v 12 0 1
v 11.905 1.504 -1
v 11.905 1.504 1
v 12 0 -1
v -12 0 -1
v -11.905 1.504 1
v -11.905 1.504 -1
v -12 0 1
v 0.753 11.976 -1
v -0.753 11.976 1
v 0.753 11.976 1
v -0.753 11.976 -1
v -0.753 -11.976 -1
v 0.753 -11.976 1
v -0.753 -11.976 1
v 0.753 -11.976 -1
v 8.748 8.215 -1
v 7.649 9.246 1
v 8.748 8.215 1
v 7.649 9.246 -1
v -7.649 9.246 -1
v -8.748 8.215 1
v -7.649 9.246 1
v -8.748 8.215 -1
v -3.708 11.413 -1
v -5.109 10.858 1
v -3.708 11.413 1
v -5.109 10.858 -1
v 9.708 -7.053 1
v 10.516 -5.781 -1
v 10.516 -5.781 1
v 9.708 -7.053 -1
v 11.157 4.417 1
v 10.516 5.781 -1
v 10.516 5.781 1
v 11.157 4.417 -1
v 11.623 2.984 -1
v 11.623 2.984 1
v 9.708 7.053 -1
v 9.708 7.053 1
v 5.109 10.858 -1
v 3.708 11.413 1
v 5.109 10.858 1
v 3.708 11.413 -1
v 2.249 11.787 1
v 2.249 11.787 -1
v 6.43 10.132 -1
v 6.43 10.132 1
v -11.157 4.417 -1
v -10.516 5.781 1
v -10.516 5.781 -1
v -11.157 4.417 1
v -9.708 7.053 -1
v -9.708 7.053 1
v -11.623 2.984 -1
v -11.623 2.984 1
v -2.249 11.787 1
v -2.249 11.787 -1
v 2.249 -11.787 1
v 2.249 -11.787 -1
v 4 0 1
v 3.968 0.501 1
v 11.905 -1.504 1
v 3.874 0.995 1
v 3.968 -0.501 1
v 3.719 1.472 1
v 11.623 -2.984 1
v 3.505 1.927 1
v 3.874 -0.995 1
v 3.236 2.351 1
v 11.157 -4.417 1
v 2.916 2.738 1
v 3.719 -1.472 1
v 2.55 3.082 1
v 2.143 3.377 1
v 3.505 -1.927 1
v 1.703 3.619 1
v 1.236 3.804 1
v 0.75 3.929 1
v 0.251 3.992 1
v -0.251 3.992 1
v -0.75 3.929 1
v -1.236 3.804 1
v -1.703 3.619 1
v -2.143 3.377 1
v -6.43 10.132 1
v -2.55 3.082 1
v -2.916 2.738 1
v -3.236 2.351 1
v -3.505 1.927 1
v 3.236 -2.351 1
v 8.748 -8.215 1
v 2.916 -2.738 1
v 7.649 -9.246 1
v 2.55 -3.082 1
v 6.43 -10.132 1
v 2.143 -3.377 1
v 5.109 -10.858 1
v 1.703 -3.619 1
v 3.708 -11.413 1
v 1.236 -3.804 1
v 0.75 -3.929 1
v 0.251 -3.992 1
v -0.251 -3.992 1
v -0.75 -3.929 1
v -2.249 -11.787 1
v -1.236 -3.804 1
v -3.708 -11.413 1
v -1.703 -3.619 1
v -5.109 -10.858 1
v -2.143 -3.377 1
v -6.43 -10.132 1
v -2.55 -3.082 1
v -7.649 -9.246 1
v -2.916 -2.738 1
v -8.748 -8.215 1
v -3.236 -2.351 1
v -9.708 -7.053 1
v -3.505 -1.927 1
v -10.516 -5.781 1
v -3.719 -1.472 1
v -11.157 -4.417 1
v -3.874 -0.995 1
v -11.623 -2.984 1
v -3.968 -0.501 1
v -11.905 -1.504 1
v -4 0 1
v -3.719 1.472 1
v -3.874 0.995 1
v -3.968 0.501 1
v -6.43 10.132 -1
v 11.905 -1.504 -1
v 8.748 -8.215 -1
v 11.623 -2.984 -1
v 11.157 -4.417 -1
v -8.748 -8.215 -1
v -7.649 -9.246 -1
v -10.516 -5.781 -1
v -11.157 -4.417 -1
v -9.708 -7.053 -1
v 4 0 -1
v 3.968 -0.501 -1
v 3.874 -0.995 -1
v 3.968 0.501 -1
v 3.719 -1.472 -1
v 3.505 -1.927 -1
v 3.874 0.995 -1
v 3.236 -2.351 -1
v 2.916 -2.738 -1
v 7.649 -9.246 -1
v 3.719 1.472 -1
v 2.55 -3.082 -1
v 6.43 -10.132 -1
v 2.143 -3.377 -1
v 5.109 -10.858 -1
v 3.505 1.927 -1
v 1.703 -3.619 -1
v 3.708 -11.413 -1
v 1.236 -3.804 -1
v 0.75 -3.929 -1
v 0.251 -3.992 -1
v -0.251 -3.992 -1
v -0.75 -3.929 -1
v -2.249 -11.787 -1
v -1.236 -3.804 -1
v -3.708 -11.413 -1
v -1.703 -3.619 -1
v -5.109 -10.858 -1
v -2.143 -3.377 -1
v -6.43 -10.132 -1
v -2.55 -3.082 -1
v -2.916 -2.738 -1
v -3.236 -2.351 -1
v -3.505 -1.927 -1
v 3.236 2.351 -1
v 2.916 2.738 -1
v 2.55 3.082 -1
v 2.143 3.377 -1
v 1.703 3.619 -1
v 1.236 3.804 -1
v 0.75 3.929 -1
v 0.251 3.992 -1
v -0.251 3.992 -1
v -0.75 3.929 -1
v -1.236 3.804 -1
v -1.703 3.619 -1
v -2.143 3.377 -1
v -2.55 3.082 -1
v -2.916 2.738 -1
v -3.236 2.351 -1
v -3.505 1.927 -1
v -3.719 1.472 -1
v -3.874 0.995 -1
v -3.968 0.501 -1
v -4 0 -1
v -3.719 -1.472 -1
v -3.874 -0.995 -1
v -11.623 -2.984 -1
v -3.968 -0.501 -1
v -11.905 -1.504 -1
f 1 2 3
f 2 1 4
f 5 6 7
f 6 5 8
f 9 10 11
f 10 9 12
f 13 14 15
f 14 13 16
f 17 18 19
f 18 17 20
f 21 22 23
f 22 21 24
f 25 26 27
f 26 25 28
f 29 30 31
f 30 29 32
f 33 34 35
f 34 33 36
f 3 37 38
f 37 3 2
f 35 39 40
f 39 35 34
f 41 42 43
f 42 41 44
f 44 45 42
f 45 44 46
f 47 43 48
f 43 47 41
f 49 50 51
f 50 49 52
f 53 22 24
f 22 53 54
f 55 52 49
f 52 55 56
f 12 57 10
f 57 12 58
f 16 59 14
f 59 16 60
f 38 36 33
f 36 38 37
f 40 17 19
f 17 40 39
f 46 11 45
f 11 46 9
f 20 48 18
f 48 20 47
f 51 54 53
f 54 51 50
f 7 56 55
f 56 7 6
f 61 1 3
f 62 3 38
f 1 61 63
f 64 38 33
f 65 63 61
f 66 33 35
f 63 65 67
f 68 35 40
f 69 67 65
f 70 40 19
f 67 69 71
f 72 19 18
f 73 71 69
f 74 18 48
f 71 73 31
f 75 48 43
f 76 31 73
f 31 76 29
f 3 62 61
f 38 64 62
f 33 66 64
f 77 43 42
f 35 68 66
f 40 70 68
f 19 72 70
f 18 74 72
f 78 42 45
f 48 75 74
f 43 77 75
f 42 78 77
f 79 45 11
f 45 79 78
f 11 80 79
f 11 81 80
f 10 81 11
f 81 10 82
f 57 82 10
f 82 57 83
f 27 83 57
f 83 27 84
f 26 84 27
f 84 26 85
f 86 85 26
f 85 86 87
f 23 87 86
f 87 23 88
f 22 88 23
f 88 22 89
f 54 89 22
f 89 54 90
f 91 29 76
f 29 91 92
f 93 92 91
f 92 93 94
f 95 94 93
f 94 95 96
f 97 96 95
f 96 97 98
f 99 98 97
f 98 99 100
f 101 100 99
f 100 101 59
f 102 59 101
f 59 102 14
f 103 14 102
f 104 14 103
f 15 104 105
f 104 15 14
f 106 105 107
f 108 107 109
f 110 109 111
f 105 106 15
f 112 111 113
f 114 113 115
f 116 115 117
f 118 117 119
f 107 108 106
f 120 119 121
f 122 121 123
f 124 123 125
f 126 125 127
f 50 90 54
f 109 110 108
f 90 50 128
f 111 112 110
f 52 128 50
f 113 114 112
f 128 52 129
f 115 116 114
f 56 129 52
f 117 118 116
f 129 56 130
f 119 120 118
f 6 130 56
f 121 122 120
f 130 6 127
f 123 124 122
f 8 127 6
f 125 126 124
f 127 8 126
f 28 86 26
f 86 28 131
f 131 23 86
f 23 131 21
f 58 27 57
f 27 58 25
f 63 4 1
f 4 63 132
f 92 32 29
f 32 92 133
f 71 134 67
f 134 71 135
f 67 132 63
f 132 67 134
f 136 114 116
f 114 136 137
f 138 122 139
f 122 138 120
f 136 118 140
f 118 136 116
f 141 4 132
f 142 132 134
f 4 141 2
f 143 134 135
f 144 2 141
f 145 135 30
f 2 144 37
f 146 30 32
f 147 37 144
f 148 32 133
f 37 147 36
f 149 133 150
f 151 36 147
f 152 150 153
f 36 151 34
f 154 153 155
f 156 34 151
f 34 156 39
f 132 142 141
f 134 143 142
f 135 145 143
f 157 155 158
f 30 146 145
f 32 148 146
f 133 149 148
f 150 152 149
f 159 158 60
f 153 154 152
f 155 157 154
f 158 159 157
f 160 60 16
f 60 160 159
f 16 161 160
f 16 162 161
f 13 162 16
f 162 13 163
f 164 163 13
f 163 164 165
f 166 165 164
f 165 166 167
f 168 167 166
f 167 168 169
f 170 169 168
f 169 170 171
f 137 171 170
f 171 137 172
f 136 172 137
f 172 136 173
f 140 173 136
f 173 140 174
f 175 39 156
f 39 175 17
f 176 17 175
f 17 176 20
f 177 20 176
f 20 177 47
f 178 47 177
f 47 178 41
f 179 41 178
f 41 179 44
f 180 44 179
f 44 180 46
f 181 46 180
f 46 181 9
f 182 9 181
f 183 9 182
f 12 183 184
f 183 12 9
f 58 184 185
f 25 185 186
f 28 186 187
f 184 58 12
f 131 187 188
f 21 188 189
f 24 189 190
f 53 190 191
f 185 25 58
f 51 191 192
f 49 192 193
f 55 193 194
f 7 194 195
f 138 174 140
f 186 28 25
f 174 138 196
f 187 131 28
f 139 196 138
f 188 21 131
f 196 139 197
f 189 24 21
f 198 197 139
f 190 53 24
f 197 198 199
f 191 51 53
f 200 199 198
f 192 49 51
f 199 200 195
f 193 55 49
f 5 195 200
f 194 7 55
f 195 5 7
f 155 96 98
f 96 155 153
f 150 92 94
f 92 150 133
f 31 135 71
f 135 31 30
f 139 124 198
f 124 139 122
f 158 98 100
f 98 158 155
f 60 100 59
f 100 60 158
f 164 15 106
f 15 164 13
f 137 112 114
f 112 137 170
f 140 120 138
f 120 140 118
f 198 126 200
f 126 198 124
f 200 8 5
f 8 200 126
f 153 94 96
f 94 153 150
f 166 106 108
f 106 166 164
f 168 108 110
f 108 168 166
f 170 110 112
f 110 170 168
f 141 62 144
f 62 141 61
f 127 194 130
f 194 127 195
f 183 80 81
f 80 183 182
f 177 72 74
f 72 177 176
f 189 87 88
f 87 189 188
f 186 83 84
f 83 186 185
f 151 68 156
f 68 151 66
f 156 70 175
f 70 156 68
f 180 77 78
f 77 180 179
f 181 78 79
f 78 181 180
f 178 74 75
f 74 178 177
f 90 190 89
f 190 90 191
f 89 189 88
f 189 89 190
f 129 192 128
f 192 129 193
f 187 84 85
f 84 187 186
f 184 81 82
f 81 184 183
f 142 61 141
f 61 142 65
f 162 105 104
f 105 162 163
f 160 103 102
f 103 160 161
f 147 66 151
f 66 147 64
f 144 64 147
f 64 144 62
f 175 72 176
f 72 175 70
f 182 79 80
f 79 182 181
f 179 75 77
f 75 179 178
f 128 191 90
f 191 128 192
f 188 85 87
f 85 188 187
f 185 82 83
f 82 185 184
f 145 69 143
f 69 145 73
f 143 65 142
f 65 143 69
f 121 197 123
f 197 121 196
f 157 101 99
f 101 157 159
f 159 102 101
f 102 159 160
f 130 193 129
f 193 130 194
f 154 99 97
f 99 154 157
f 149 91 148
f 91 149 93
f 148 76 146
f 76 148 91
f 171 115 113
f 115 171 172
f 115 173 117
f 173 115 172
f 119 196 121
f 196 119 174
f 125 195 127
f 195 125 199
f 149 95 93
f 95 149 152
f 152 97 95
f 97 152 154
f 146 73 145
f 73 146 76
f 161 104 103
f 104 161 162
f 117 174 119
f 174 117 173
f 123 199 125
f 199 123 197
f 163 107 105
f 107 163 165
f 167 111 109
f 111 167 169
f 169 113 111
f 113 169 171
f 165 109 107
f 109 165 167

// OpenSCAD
$fn = 50;


difference() {
	union() {
		translate(v = [0, 0, -1.0000000000]) {
			cylinder(h = 2, r = 12.0000000000);
		}
	}
	union() {
		translate(v = [0, 0, -100.0000000000]) {
			cylinder(h = 200, r = 4);
		}
	}
}
